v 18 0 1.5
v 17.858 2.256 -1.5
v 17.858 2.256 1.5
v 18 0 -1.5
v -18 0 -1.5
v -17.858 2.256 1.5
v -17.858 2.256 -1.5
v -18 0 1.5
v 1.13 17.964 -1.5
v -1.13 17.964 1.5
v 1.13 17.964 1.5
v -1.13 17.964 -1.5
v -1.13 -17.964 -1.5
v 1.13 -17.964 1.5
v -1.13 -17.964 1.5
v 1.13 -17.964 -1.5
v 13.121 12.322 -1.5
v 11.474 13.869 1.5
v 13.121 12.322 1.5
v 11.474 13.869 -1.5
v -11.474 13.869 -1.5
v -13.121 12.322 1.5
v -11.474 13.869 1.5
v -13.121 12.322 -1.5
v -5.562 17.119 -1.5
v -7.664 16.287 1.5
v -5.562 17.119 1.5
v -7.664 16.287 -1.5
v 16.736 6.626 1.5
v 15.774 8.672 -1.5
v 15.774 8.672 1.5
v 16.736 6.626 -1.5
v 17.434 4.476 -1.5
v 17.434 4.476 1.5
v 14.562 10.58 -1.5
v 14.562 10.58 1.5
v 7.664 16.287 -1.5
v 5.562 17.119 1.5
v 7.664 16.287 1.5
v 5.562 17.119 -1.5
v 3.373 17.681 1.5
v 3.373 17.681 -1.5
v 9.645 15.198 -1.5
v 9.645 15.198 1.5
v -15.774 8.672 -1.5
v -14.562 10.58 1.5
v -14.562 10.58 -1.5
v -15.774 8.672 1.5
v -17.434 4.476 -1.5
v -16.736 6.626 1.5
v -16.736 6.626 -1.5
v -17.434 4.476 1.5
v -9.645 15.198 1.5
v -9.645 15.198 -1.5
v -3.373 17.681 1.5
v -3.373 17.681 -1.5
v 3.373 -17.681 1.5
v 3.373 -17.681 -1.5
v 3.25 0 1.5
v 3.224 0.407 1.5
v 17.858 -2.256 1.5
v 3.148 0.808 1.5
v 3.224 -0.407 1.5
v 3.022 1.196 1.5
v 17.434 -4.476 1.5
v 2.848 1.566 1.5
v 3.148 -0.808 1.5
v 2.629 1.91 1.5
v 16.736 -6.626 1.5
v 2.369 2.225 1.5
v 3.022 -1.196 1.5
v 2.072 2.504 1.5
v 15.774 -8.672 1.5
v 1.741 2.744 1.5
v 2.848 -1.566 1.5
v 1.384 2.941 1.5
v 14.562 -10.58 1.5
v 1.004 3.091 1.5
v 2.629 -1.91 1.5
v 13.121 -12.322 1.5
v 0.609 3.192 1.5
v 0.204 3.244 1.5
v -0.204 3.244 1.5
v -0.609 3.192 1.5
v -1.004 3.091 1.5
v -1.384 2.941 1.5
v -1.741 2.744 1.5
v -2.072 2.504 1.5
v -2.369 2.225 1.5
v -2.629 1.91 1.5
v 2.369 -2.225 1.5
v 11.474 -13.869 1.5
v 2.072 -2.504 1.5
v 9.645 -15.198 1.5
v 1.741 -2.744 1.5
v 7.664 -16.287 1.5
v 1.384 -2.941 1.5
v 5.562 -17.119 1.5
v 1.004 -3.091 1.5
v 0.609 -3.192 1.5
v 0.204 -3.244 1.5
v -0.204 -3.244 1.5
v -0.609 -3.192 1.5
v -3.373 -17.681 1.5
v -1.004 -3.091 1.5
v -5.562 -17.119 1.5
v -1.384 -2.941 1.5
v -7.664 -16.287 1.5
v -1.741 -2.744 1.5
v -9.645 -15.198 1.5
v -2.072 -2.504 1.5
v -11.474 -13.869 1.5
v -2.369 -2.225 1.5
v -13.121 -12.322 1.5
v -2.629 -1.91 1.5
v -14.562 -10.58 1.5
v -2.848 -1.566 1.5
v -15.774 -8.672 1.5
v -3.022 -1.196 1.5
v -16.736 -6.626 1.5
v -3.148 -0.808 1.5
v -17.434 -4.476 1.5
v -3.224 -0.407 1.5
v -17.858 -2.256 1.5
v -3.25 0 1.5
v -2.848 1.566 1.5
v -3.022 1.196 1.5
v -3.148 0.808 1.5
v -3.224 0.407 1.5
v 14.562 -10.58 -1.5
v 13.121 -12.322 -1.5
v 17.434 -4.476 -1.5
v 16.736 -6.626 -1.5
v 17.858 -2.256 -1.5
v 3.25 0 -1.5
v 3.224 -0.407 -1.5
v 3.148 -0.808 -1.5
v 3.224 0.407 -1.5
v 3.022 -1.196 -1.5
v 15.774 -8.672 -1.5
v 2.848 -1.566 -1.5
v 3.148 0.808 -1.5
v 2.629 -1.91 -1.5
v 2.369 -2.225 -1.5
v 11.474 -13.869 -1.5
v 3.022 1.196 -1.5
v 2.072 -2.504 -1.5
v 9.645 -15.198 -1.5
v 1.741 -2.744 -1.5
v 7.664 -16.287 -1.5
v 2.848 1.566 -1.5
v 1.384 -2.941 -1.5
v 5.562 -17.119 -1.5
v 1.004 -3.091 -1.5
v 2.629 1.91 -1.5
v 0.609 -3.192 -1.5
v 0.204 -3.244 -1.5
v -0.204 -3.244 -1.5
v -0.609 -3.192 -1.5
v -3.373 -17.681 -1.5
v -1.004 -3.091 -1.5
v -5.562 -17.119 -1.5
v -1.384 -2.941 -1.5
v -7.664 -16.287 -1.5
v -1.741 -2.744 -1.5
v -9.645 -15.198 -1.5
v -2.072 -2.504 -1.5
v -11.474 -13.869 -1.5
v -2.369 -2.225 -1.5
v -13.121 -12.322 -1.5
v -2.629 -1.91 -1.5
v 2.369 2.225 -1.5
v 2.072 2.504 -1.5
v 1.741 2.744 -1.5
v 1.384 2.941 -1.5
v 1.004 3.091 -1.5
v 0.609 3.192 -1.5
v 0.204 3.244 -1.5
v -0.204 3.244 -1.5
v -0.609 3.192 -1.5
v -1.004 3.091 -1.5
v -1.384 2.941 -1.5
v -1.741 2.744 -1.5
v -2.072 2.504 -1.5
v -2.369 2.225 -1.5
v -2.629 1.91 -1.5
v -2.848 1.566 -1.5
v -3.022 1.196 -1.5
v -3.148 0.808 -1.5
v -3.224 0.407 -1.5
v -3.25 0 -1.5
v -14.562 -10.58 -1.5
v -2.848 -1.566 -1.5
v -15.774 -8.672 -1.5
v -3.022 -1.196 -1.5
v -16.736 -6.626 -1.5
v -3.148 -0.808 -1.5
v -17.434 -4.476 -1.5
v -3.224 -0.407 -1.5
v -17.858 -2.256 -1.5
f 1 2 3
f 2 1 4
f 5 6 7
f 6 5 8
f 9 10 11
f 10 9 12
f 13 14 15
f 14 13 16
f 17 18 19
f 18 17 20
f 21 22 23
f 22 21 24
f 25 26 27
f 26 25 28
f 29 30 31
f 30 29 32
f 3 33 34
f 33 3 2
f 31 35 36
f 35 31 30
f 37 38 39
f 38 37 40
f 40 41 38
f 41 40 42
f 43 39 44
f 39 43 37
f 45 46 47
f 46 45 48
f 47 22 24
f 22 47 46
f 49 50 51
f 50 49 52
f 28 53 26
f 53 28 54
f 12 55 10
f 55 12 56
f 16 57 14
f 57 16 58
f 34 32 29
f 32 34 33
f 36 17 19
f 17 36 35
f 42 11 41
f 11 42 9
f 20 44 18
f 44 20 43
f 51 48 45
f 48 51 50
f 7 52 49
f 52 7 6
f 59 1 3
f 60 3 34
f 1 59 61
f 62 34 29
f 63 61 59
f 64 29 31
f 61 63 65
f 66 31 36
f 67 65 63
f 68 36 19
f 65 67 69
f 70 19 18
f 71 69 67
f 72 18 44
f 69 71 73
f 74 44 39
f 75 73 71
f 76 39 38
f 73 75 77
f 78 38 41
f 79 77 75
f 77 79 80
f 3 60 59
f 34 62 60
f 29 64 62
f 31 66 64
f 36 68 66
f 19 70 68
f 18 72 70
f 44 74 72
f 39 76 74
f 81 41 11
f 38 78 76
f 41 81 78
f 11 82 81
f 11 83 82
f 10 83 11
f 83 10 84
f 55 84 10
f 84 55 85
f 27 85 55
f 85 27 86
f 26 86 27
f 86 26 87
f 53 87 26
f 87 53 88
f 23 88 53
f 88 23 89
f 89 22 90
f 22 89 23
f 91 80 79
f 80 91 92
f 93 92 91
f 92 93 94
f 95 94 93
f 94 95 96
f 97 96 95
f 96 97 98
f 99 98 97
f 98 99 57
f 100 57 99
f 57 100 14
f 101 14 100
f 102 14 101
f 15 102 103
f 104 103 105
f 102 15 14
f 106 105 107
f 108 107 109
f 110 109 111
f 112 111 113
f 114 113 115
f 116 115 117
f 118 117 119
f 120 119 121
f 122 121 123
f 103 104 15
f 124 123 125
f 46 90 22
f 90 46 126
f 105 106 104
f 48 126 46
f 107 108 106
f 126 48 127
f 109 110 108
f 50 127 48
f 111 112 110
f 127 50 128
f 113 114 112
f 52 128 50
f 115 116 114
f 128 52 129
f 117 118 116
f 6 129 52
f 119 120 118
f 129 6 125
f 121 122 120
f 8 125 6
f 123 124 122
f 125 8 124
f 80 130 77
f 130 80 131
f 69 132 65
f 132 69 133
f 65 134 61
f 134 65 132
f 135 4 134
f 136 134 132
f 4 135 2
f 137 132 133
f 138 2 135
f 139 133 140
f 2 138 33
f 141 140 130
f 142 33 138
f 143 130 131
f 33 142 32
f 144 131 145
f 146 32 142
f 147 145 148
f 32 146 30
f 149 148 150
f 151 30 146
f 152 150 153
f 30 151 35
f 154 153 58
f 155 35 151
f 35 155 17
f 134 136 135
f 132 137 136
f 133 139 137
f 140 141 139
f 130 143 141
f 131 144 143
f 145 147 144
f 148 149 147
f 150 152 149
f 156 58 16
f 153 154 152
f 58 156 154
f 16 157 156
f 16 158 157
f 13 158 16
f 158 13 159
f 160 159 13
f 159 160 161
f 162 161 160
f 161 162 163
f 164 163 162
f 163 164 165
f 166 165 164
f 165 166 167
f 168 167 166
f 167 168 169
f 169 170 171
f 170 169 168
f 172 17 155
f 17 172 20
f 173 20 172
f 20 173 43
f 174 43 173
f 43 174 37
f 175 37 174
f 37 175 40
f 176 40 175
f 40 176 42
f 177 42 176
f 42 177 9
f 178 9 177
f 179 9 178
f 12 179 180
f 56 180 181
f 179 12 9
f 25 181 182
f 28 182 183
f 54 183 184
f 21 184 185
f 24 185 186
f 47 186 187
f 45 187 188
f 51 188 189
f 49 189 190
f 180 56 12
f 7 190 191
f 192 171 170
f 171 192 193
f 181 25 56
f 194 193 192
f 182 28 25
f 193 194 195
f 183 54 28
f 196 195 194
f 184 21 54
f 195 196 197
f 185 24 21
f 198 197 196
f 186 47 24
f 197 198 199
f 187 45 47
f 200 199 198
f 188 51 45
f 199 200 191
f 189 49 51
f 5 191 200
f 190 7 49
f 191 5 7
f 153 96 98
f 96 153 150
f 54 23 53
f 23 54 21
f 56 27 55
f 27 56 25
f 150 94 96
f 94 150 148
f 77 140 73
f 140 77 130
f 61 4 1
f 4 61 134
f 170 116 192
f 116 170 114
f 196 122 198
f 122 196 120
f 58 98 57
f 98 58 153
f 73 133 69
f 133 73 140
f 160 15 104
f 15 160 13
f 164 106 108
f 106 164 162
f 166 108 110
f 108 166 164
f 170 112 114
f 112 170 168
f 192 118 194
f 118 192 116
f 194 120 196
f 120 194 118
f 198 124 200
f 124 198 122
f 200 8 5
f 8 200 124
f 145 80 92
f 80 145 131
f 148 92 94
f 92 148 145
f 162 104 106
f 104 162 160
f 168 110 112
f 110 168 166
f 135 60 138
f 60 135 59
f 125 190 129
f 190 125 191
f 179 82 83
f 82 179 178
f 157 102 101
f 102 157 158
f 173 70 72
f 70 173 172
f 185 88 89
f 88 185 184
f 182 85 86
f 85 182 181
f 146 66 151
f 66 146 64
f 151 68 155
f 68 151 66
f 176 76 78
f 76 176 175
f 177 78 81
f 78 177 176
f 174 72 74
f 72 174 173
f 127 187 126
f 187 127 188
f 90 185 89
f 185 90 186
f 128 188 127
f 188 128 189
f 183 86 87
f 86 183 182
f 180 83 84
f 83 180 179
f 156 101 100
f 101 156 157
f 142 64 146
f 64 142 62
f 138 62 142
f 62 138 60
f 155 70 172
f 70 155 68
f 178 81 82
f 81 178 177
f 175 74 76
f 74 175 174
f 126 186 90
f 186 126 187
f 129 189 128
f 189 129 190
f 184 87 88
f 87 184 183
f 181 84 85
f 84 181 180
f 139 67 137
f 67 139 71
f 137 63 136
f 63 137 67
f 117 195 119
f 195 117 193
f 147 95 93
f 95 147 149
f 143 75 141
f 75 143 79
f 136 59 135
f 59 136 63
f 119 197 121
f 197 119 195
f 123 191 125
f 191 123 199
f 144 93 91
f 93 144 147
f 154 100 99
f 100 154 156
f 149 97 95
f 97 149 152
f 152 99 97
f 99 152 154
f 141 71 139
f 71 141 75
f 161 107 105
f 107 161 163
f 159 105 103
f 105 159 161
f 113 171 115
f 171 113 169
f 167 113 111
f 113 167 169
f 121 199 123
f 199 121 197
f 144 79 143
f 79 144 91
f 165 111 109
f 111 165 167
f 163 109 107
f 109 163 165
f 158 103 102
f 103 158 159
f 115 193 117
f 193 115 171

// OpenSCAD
$fn = 50;


difference() {
	union() {
		translate(v = [0, 0, -1.5000000000]) {
			cylinder(h = 3, r = 18.0000000000);
		}
	}
	union() {
		translate(v = [0, 0, -100.0000000000]) {
			cylinder(h = 200, r = 3.2500000000);
		}
	}
}
